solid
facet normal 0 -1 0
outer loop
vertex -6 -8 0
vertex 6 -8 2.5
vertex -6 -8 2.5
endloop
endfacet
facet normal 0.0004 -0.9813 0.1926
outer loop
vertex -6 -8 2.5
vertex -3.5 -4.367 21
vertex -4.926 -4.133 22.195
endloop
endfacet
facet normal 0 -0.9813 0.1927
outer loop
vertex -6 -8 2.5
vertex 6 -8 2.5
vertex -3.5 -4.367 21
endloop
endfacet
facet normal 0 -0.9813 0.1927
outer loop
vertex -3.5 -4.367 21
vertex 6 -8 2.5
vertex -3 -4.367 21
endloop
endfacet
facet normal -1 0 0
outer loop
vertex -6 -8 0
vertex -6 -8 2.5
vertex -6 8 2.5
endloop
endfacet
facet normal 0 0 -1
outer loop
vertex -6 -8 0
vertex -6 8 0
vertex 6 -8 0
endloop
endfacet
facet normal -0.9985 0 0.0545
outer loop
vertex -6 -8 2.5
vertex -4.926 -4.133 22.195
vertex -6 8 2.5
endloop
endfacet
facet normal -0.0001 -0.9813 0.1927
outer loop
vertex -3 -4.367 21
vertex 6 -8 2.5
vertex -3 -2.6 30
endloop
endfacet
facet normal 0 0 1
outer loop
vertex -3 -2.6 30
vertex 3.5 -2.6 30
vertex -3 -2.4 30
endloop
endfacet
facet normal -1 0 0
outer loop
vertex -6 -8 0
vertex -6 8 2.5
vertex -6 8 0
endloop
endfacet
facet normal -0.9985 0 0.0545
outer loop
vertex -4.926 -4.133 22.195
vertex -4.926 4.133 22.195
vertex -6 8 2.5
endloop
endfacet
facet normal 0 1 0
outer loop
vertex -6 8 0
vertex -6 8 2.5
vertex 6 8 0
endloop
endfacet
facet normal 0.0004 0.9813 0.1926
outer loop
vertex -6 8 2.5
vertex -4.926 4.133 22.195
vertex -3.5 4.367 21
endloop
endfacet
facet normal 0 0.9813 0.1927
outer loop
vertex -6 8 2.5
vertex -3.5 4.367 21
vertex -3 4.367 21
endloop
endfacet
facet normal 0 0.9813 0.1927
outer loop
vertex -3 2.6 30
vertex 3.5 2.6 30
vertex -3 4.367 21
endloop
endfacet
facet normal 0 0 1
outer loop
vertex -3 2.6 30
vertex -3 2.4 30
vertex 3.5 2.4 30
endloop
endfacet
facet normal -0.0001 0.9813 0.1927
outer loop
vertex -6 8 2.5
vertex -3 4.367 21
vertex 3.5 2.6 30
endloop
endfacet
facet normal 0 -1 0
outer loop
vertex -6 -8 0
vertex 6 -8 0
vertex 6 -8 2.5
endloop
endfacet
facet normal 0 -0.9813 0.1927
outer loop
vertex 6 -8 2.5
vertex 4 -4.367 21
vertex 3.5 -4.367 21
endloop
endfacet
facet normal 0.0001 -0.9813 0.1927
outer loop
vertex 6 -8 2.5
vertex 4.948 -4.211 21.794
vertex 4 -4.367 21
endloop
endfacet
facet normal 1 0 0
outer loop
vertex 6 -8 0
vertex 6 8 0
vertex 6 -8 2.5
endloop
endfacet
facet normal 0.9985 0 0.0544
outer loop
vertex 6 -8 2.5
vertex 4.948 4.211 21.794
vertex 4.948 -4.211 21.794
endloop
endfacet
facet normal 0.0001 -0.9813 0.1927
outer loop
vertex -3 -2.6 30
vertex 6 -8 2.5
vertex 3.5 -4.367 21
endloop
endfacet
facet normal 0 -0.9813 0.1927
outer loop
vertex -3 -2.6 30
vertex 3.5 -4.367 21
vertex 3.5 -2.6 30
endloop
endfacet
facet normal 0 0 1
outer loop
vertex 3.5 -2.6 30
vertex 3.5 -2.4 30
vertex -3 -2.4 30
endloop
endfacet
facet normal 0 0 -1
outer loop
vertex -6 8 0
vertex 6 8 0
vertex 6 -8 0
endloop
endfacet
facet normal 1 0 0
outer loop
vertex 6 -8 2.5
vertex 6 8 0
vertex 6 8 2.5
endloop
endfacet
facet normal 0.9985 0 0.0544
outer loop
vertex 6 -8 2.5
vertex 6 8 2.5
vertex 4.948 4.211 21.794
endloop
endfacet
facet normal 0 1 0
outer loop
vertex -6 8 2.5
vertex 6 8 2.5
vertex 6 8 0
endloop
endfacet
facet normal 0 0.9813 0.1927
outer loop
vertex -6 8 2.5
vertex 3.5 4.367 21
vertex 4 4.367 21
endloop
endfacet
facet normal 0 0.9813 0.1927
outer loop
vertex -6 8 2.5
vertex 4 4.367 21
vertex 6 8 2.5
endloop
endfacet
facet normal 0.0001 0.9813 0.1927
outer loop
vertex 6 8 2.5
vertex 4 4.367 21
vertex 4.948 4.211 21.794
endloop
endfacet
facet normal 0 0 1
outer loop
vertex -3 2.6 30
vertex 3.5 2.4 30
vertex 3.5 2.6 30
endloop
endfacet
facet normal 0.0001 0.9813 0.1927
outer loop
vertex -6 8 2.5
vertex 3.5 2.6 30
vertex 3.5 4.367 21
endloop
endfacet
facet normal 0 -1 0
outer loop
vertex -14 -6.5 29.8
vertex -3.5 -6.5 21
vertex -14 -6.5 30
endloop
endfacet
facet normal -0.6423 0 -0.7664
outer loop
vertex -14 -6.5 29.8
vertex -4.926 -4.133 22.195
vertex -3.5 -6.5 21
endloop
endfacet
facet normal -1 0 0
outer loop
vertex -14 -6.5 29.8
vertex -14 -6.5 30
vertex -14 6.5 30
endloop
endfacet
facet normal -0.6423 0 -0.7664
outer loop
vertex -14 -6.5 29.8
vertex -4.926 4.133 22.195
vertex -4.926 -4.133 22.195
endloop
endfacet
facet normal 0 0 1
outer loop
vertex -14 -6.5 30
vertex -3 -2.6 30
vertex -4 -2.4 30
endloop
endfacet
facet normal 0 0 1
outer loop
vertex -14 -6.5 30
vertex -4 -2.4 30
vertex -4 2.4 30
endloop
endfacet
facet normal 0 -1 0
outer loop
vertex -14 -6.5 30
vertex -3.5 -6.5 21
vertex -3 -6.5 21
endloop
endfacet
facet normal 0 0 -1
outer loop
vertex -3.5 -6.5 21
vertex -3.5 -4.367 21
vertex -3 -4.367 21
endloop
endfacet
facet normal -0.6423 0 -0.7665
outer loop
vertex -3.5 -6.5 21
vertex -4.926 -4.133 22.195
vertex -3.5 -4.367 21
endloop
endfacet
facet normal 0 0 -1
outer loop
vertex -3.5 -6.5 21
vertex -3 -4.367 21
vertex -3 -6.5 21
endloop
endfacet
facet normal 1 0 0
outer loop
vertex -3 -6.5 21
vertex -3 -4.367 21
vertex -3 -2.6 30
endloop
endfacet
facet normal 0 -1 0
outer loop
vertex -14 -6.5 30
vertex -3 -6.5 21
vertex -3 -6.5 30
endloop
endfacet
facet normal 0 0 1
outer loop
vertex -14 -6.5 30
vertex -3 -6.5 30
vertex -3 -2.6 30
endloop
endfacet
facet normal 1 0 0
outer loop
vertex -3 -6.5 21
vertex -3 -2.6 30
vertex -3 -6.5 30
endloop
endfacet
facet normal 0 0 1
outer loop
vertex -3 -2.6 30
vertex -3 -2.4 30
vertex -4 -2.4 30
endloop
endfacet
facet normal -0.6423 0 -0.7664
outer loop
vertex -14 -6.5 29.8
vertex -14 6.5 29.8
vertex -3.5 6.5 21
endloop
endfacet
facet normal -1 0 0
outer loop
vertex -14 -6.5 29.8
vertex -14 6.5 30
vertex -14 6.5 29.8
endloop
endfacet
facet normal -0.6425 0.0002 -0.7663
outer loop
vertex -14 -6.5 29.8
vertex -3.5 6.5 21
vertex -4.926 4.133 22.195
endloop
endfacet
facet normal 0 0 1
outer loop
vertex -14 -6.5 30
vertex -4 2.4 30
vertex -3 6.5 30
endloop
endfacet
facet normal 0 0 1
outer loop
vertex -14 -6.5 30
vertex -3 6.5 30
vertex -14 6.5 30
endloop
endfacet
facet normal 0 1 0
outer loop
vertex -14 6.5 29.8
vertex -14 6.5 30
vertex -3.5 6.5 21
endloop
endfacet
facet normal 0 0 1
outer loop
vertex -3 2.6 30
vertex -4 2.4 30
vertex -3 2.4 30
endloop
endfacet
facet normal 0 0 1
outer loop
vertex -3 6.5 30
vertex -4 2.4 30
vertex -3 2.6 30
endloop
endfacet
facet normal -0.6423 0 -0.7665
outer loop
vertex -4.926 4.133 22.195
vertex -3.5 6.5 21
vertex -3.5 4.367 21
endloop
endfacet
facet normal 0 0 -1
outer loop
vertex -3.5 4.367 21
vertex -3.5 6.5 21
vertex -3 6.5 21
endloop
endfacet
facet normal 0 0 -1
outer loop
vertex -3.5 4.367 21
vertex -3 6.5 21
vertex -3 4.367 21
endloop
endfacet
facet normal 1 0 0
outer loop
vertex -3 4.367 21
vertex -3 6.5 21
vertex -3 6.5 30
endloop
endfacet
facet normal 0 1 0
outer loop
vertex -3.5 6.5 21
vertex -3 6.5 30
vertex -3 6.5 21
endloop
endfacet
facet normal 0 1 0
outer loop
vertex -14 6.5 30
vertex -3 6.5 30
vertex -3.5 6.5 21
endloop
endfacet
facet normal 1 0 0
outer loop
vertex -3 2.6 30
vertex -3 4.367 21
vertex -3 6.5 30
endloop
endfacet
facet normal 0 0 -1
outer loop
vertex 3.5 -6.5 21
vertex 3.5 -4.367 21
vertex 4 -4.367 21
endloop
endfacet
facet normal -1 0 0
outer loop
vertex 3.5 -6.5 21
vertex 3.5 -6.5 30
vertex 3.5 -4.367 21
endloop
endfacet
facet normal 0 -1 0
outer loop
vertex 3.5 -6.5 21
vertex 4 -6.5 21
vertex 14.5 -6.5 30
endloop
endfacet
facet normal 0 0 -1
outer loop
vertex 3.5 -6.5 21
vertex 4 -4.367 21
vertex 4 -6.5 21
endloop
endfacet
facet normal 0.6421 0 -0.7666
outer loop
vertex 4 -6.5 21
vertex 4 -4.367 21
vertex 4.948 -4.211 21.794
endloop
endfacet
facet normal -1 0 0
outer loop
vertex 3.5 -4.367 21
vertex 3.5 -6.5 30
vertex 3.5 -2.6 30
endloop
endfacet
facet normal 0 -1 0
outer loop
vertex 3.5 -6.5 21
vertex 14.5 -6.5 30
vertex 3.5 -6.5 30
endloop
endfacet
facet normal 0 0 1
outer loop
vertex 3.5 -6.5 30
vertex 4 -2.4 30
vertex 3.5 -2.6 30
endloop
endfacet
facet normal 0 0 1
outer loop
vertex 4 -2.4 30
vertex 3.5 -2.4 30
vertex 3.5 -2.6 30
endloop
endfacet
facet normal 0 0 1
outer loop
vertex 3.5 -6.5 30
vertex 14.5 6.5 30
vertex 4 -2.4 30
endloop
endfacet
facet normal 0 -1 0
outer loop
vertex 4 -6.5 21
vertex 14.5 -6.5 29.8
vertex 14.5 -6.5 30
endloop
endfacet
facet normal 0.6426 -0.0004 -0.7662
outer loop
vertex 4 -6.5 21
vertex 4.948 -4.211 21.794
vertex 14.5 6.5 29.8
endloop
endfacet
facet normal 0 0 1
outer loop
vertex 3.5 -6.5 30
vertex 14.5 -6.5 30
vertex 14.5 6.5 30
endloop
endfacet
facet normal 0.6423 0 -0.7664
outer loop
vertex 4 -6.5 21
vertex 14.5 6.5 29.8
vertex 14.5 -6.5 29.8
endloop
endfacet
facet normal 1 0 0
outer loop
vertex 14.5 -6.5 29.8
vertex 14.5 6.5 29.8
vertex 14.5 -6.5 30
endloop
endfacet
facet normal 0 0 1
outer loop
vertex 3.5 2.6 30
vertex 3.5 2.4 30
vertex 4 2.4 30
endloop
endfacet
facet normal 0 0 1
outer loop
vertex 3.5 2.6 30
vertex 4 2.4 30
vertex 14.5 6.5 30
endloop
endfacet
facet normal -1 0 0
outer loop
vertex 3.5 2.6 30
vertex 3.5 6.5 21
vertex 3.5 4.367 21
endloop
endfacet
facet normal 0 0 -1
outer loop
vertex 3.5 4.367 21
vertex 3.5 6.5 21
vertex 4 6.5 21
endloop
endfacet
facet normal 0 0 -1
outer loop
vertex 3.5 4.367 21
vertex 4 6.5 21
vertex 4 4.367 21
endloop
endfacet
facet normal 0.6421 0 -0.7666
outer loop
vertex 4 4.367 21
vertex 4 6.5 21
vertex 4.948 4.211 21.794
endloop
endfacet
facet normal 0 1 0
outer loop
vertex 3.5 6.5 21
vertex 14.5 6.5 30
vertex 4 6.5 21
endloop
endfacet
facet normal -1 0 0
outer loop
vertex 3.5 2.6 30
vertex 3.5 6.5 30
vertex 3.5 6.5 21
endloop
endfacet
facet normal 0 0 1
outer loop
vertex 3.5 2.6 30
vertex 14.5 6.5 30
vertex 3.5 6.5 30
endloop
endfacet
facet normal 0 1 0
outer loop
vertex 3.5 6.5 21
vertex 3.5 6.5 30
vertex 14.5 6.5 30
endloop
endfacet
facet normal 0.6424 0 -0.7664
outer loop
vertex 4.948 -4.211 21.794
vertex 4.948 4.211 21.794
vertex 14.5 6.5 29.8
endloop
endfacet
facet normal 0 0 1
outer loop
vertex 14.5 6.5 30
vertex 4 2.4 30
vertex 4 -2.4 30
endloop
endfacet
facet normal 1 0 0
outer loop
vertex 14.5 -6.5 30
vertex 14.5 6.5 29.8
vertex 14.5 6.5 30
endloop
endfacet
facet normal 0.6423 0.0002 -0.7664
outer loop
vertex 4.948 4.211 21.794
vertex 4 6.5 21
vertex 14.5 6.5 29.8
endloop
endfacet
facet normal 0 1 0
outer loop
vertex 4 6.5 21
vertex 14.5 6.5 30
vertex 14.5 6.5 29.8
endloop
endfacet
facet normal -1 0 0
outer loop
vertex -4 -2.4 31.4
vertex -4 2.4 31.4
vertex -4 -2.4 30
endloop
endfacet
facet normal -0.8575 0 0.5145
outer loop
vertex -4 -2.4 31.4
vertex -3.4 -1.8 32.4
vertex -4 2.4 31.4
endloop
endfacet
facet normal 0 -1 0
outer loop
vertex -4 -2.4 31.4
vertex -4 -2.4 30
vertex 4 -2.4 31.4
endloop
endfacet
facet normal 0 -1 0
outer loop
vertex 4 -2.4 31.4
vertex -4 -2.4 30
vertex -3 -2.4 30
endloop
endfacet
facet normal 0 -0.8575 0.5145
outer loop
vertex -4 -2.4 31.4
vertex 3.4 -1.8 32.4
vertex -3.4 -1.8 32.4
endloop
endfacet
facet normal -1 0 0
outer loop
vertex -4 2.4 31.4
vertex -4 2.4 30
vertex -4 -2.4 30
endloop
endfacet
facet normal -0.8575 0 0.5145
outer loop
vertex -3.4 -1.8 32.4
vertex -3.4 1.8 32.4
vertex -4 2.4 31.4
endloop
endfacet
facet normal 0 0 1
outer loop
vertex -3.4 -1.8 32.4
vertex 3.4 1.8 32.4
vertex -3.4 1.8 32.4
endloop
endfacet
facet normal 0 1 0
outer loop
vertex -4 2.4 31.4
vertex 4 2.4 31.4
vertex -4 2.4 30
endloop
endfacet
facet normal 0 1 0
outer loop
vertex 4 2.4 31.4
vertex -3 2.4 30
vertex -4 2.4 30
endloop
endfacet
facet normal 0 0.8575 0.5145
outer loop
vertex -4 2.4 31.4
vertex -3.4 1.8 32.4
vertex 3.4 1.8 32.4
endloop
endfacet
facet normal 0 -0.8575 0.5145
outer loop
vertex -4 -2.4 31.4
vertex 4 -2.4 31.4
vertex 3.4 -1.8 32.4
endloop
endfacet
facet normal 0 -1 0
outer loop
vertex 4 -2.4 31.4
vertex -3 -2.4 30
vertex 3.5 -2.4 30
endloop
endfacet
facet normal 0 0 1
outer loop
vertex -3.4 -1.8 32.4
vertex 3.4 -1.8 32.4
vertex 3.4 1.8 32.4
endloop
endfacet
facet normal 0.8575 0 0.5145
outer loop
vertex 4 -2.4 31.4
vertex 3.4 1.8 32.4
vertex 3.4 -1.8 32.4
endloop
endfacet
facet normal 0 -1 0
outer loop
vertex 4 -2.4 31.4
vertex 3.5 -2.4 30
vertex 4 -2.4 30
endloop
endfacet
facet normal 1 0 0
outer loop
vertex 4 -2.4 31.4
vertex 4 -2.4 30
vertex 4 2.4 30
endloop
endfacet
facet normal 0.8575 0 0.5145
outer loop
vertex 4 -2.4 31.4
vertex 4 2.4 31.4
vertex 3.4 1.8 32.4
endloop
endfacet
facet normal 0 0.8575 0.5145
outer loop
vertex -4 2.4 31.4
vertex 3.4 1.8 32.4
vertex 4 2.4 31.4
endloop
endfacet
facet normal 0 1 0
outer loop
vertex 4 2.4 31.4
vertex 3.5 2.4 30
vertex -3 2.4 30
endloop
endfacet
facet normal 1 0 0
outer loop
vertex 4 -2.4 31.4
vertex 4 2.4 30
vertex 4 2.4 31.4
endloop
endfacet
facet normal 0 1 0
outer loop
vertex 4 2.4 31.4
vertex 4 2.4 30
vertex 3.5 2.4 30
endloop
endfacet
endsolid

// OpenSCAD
// ====================================================================
// Modular Snap-In Mountain Bridge - PART 2: BOTTOM CENTER PILLAR
// Height: Exactly 30.0 mm (3.0 cm) downward extension below deck
// Tenon: 8.0mm x 4.8mm x 2.2mm with 45-deg lead-in chamfer
// 100% Watertight Manifold Solid for Flat Bed Printing (NoError)
// ====================================================================

$fn = 28;

pillar_h  = 30.0;
deck_w    = 18.0;

module bottom_center_pillar_part() {
    union() {
        // Main Pillar Body (from Z = 0 to Z = 30.0 mm)
        hull() {
            translate([-6.0, -deck_w/2 + 1.0, 0])
                cube([12.0, deck_w - 2.0, 2.5]);
            translate([-4.5, -2.6, pillar_h - 0.2])
                cube([9.0, 5.2, 0.2]);
        }

        // Under-deck structural wing supports
        for (s = [-1, 1]) {
            hull() {
                translate([s * 3.5, -deck_w/2 + 2.5, pillar_h - 1.0])
                    cube([0.5, deck_w - 5.0, 1.0]);
                translate([s * 14.0, -deck_w/2 + 2.5, pillar_h - 0.2])
                    cube([0.5, deck_w - 5.0, 0.2]);
                translate([s * 3.5, -deck_w/2 + 2.5, pillar_h - 9.0])
                    cube([0.5, deck_w - 5.0, 1.0]);
            }
        }

        // --- MALE SNAP-IN TENON KEY (8.0mm x 4.8mm x 2.2mm) ---
        hull() {
            translate([-4.0, -2.4, pillar_h])
                cube([8.0, 4.8, 1.4]);
            translate([-3.4, -1.8, pillar_h + 2.2])
                cube([6.8, 3.6, 0.2]);
        }
    }
}

bottom_center_pillar_part();
